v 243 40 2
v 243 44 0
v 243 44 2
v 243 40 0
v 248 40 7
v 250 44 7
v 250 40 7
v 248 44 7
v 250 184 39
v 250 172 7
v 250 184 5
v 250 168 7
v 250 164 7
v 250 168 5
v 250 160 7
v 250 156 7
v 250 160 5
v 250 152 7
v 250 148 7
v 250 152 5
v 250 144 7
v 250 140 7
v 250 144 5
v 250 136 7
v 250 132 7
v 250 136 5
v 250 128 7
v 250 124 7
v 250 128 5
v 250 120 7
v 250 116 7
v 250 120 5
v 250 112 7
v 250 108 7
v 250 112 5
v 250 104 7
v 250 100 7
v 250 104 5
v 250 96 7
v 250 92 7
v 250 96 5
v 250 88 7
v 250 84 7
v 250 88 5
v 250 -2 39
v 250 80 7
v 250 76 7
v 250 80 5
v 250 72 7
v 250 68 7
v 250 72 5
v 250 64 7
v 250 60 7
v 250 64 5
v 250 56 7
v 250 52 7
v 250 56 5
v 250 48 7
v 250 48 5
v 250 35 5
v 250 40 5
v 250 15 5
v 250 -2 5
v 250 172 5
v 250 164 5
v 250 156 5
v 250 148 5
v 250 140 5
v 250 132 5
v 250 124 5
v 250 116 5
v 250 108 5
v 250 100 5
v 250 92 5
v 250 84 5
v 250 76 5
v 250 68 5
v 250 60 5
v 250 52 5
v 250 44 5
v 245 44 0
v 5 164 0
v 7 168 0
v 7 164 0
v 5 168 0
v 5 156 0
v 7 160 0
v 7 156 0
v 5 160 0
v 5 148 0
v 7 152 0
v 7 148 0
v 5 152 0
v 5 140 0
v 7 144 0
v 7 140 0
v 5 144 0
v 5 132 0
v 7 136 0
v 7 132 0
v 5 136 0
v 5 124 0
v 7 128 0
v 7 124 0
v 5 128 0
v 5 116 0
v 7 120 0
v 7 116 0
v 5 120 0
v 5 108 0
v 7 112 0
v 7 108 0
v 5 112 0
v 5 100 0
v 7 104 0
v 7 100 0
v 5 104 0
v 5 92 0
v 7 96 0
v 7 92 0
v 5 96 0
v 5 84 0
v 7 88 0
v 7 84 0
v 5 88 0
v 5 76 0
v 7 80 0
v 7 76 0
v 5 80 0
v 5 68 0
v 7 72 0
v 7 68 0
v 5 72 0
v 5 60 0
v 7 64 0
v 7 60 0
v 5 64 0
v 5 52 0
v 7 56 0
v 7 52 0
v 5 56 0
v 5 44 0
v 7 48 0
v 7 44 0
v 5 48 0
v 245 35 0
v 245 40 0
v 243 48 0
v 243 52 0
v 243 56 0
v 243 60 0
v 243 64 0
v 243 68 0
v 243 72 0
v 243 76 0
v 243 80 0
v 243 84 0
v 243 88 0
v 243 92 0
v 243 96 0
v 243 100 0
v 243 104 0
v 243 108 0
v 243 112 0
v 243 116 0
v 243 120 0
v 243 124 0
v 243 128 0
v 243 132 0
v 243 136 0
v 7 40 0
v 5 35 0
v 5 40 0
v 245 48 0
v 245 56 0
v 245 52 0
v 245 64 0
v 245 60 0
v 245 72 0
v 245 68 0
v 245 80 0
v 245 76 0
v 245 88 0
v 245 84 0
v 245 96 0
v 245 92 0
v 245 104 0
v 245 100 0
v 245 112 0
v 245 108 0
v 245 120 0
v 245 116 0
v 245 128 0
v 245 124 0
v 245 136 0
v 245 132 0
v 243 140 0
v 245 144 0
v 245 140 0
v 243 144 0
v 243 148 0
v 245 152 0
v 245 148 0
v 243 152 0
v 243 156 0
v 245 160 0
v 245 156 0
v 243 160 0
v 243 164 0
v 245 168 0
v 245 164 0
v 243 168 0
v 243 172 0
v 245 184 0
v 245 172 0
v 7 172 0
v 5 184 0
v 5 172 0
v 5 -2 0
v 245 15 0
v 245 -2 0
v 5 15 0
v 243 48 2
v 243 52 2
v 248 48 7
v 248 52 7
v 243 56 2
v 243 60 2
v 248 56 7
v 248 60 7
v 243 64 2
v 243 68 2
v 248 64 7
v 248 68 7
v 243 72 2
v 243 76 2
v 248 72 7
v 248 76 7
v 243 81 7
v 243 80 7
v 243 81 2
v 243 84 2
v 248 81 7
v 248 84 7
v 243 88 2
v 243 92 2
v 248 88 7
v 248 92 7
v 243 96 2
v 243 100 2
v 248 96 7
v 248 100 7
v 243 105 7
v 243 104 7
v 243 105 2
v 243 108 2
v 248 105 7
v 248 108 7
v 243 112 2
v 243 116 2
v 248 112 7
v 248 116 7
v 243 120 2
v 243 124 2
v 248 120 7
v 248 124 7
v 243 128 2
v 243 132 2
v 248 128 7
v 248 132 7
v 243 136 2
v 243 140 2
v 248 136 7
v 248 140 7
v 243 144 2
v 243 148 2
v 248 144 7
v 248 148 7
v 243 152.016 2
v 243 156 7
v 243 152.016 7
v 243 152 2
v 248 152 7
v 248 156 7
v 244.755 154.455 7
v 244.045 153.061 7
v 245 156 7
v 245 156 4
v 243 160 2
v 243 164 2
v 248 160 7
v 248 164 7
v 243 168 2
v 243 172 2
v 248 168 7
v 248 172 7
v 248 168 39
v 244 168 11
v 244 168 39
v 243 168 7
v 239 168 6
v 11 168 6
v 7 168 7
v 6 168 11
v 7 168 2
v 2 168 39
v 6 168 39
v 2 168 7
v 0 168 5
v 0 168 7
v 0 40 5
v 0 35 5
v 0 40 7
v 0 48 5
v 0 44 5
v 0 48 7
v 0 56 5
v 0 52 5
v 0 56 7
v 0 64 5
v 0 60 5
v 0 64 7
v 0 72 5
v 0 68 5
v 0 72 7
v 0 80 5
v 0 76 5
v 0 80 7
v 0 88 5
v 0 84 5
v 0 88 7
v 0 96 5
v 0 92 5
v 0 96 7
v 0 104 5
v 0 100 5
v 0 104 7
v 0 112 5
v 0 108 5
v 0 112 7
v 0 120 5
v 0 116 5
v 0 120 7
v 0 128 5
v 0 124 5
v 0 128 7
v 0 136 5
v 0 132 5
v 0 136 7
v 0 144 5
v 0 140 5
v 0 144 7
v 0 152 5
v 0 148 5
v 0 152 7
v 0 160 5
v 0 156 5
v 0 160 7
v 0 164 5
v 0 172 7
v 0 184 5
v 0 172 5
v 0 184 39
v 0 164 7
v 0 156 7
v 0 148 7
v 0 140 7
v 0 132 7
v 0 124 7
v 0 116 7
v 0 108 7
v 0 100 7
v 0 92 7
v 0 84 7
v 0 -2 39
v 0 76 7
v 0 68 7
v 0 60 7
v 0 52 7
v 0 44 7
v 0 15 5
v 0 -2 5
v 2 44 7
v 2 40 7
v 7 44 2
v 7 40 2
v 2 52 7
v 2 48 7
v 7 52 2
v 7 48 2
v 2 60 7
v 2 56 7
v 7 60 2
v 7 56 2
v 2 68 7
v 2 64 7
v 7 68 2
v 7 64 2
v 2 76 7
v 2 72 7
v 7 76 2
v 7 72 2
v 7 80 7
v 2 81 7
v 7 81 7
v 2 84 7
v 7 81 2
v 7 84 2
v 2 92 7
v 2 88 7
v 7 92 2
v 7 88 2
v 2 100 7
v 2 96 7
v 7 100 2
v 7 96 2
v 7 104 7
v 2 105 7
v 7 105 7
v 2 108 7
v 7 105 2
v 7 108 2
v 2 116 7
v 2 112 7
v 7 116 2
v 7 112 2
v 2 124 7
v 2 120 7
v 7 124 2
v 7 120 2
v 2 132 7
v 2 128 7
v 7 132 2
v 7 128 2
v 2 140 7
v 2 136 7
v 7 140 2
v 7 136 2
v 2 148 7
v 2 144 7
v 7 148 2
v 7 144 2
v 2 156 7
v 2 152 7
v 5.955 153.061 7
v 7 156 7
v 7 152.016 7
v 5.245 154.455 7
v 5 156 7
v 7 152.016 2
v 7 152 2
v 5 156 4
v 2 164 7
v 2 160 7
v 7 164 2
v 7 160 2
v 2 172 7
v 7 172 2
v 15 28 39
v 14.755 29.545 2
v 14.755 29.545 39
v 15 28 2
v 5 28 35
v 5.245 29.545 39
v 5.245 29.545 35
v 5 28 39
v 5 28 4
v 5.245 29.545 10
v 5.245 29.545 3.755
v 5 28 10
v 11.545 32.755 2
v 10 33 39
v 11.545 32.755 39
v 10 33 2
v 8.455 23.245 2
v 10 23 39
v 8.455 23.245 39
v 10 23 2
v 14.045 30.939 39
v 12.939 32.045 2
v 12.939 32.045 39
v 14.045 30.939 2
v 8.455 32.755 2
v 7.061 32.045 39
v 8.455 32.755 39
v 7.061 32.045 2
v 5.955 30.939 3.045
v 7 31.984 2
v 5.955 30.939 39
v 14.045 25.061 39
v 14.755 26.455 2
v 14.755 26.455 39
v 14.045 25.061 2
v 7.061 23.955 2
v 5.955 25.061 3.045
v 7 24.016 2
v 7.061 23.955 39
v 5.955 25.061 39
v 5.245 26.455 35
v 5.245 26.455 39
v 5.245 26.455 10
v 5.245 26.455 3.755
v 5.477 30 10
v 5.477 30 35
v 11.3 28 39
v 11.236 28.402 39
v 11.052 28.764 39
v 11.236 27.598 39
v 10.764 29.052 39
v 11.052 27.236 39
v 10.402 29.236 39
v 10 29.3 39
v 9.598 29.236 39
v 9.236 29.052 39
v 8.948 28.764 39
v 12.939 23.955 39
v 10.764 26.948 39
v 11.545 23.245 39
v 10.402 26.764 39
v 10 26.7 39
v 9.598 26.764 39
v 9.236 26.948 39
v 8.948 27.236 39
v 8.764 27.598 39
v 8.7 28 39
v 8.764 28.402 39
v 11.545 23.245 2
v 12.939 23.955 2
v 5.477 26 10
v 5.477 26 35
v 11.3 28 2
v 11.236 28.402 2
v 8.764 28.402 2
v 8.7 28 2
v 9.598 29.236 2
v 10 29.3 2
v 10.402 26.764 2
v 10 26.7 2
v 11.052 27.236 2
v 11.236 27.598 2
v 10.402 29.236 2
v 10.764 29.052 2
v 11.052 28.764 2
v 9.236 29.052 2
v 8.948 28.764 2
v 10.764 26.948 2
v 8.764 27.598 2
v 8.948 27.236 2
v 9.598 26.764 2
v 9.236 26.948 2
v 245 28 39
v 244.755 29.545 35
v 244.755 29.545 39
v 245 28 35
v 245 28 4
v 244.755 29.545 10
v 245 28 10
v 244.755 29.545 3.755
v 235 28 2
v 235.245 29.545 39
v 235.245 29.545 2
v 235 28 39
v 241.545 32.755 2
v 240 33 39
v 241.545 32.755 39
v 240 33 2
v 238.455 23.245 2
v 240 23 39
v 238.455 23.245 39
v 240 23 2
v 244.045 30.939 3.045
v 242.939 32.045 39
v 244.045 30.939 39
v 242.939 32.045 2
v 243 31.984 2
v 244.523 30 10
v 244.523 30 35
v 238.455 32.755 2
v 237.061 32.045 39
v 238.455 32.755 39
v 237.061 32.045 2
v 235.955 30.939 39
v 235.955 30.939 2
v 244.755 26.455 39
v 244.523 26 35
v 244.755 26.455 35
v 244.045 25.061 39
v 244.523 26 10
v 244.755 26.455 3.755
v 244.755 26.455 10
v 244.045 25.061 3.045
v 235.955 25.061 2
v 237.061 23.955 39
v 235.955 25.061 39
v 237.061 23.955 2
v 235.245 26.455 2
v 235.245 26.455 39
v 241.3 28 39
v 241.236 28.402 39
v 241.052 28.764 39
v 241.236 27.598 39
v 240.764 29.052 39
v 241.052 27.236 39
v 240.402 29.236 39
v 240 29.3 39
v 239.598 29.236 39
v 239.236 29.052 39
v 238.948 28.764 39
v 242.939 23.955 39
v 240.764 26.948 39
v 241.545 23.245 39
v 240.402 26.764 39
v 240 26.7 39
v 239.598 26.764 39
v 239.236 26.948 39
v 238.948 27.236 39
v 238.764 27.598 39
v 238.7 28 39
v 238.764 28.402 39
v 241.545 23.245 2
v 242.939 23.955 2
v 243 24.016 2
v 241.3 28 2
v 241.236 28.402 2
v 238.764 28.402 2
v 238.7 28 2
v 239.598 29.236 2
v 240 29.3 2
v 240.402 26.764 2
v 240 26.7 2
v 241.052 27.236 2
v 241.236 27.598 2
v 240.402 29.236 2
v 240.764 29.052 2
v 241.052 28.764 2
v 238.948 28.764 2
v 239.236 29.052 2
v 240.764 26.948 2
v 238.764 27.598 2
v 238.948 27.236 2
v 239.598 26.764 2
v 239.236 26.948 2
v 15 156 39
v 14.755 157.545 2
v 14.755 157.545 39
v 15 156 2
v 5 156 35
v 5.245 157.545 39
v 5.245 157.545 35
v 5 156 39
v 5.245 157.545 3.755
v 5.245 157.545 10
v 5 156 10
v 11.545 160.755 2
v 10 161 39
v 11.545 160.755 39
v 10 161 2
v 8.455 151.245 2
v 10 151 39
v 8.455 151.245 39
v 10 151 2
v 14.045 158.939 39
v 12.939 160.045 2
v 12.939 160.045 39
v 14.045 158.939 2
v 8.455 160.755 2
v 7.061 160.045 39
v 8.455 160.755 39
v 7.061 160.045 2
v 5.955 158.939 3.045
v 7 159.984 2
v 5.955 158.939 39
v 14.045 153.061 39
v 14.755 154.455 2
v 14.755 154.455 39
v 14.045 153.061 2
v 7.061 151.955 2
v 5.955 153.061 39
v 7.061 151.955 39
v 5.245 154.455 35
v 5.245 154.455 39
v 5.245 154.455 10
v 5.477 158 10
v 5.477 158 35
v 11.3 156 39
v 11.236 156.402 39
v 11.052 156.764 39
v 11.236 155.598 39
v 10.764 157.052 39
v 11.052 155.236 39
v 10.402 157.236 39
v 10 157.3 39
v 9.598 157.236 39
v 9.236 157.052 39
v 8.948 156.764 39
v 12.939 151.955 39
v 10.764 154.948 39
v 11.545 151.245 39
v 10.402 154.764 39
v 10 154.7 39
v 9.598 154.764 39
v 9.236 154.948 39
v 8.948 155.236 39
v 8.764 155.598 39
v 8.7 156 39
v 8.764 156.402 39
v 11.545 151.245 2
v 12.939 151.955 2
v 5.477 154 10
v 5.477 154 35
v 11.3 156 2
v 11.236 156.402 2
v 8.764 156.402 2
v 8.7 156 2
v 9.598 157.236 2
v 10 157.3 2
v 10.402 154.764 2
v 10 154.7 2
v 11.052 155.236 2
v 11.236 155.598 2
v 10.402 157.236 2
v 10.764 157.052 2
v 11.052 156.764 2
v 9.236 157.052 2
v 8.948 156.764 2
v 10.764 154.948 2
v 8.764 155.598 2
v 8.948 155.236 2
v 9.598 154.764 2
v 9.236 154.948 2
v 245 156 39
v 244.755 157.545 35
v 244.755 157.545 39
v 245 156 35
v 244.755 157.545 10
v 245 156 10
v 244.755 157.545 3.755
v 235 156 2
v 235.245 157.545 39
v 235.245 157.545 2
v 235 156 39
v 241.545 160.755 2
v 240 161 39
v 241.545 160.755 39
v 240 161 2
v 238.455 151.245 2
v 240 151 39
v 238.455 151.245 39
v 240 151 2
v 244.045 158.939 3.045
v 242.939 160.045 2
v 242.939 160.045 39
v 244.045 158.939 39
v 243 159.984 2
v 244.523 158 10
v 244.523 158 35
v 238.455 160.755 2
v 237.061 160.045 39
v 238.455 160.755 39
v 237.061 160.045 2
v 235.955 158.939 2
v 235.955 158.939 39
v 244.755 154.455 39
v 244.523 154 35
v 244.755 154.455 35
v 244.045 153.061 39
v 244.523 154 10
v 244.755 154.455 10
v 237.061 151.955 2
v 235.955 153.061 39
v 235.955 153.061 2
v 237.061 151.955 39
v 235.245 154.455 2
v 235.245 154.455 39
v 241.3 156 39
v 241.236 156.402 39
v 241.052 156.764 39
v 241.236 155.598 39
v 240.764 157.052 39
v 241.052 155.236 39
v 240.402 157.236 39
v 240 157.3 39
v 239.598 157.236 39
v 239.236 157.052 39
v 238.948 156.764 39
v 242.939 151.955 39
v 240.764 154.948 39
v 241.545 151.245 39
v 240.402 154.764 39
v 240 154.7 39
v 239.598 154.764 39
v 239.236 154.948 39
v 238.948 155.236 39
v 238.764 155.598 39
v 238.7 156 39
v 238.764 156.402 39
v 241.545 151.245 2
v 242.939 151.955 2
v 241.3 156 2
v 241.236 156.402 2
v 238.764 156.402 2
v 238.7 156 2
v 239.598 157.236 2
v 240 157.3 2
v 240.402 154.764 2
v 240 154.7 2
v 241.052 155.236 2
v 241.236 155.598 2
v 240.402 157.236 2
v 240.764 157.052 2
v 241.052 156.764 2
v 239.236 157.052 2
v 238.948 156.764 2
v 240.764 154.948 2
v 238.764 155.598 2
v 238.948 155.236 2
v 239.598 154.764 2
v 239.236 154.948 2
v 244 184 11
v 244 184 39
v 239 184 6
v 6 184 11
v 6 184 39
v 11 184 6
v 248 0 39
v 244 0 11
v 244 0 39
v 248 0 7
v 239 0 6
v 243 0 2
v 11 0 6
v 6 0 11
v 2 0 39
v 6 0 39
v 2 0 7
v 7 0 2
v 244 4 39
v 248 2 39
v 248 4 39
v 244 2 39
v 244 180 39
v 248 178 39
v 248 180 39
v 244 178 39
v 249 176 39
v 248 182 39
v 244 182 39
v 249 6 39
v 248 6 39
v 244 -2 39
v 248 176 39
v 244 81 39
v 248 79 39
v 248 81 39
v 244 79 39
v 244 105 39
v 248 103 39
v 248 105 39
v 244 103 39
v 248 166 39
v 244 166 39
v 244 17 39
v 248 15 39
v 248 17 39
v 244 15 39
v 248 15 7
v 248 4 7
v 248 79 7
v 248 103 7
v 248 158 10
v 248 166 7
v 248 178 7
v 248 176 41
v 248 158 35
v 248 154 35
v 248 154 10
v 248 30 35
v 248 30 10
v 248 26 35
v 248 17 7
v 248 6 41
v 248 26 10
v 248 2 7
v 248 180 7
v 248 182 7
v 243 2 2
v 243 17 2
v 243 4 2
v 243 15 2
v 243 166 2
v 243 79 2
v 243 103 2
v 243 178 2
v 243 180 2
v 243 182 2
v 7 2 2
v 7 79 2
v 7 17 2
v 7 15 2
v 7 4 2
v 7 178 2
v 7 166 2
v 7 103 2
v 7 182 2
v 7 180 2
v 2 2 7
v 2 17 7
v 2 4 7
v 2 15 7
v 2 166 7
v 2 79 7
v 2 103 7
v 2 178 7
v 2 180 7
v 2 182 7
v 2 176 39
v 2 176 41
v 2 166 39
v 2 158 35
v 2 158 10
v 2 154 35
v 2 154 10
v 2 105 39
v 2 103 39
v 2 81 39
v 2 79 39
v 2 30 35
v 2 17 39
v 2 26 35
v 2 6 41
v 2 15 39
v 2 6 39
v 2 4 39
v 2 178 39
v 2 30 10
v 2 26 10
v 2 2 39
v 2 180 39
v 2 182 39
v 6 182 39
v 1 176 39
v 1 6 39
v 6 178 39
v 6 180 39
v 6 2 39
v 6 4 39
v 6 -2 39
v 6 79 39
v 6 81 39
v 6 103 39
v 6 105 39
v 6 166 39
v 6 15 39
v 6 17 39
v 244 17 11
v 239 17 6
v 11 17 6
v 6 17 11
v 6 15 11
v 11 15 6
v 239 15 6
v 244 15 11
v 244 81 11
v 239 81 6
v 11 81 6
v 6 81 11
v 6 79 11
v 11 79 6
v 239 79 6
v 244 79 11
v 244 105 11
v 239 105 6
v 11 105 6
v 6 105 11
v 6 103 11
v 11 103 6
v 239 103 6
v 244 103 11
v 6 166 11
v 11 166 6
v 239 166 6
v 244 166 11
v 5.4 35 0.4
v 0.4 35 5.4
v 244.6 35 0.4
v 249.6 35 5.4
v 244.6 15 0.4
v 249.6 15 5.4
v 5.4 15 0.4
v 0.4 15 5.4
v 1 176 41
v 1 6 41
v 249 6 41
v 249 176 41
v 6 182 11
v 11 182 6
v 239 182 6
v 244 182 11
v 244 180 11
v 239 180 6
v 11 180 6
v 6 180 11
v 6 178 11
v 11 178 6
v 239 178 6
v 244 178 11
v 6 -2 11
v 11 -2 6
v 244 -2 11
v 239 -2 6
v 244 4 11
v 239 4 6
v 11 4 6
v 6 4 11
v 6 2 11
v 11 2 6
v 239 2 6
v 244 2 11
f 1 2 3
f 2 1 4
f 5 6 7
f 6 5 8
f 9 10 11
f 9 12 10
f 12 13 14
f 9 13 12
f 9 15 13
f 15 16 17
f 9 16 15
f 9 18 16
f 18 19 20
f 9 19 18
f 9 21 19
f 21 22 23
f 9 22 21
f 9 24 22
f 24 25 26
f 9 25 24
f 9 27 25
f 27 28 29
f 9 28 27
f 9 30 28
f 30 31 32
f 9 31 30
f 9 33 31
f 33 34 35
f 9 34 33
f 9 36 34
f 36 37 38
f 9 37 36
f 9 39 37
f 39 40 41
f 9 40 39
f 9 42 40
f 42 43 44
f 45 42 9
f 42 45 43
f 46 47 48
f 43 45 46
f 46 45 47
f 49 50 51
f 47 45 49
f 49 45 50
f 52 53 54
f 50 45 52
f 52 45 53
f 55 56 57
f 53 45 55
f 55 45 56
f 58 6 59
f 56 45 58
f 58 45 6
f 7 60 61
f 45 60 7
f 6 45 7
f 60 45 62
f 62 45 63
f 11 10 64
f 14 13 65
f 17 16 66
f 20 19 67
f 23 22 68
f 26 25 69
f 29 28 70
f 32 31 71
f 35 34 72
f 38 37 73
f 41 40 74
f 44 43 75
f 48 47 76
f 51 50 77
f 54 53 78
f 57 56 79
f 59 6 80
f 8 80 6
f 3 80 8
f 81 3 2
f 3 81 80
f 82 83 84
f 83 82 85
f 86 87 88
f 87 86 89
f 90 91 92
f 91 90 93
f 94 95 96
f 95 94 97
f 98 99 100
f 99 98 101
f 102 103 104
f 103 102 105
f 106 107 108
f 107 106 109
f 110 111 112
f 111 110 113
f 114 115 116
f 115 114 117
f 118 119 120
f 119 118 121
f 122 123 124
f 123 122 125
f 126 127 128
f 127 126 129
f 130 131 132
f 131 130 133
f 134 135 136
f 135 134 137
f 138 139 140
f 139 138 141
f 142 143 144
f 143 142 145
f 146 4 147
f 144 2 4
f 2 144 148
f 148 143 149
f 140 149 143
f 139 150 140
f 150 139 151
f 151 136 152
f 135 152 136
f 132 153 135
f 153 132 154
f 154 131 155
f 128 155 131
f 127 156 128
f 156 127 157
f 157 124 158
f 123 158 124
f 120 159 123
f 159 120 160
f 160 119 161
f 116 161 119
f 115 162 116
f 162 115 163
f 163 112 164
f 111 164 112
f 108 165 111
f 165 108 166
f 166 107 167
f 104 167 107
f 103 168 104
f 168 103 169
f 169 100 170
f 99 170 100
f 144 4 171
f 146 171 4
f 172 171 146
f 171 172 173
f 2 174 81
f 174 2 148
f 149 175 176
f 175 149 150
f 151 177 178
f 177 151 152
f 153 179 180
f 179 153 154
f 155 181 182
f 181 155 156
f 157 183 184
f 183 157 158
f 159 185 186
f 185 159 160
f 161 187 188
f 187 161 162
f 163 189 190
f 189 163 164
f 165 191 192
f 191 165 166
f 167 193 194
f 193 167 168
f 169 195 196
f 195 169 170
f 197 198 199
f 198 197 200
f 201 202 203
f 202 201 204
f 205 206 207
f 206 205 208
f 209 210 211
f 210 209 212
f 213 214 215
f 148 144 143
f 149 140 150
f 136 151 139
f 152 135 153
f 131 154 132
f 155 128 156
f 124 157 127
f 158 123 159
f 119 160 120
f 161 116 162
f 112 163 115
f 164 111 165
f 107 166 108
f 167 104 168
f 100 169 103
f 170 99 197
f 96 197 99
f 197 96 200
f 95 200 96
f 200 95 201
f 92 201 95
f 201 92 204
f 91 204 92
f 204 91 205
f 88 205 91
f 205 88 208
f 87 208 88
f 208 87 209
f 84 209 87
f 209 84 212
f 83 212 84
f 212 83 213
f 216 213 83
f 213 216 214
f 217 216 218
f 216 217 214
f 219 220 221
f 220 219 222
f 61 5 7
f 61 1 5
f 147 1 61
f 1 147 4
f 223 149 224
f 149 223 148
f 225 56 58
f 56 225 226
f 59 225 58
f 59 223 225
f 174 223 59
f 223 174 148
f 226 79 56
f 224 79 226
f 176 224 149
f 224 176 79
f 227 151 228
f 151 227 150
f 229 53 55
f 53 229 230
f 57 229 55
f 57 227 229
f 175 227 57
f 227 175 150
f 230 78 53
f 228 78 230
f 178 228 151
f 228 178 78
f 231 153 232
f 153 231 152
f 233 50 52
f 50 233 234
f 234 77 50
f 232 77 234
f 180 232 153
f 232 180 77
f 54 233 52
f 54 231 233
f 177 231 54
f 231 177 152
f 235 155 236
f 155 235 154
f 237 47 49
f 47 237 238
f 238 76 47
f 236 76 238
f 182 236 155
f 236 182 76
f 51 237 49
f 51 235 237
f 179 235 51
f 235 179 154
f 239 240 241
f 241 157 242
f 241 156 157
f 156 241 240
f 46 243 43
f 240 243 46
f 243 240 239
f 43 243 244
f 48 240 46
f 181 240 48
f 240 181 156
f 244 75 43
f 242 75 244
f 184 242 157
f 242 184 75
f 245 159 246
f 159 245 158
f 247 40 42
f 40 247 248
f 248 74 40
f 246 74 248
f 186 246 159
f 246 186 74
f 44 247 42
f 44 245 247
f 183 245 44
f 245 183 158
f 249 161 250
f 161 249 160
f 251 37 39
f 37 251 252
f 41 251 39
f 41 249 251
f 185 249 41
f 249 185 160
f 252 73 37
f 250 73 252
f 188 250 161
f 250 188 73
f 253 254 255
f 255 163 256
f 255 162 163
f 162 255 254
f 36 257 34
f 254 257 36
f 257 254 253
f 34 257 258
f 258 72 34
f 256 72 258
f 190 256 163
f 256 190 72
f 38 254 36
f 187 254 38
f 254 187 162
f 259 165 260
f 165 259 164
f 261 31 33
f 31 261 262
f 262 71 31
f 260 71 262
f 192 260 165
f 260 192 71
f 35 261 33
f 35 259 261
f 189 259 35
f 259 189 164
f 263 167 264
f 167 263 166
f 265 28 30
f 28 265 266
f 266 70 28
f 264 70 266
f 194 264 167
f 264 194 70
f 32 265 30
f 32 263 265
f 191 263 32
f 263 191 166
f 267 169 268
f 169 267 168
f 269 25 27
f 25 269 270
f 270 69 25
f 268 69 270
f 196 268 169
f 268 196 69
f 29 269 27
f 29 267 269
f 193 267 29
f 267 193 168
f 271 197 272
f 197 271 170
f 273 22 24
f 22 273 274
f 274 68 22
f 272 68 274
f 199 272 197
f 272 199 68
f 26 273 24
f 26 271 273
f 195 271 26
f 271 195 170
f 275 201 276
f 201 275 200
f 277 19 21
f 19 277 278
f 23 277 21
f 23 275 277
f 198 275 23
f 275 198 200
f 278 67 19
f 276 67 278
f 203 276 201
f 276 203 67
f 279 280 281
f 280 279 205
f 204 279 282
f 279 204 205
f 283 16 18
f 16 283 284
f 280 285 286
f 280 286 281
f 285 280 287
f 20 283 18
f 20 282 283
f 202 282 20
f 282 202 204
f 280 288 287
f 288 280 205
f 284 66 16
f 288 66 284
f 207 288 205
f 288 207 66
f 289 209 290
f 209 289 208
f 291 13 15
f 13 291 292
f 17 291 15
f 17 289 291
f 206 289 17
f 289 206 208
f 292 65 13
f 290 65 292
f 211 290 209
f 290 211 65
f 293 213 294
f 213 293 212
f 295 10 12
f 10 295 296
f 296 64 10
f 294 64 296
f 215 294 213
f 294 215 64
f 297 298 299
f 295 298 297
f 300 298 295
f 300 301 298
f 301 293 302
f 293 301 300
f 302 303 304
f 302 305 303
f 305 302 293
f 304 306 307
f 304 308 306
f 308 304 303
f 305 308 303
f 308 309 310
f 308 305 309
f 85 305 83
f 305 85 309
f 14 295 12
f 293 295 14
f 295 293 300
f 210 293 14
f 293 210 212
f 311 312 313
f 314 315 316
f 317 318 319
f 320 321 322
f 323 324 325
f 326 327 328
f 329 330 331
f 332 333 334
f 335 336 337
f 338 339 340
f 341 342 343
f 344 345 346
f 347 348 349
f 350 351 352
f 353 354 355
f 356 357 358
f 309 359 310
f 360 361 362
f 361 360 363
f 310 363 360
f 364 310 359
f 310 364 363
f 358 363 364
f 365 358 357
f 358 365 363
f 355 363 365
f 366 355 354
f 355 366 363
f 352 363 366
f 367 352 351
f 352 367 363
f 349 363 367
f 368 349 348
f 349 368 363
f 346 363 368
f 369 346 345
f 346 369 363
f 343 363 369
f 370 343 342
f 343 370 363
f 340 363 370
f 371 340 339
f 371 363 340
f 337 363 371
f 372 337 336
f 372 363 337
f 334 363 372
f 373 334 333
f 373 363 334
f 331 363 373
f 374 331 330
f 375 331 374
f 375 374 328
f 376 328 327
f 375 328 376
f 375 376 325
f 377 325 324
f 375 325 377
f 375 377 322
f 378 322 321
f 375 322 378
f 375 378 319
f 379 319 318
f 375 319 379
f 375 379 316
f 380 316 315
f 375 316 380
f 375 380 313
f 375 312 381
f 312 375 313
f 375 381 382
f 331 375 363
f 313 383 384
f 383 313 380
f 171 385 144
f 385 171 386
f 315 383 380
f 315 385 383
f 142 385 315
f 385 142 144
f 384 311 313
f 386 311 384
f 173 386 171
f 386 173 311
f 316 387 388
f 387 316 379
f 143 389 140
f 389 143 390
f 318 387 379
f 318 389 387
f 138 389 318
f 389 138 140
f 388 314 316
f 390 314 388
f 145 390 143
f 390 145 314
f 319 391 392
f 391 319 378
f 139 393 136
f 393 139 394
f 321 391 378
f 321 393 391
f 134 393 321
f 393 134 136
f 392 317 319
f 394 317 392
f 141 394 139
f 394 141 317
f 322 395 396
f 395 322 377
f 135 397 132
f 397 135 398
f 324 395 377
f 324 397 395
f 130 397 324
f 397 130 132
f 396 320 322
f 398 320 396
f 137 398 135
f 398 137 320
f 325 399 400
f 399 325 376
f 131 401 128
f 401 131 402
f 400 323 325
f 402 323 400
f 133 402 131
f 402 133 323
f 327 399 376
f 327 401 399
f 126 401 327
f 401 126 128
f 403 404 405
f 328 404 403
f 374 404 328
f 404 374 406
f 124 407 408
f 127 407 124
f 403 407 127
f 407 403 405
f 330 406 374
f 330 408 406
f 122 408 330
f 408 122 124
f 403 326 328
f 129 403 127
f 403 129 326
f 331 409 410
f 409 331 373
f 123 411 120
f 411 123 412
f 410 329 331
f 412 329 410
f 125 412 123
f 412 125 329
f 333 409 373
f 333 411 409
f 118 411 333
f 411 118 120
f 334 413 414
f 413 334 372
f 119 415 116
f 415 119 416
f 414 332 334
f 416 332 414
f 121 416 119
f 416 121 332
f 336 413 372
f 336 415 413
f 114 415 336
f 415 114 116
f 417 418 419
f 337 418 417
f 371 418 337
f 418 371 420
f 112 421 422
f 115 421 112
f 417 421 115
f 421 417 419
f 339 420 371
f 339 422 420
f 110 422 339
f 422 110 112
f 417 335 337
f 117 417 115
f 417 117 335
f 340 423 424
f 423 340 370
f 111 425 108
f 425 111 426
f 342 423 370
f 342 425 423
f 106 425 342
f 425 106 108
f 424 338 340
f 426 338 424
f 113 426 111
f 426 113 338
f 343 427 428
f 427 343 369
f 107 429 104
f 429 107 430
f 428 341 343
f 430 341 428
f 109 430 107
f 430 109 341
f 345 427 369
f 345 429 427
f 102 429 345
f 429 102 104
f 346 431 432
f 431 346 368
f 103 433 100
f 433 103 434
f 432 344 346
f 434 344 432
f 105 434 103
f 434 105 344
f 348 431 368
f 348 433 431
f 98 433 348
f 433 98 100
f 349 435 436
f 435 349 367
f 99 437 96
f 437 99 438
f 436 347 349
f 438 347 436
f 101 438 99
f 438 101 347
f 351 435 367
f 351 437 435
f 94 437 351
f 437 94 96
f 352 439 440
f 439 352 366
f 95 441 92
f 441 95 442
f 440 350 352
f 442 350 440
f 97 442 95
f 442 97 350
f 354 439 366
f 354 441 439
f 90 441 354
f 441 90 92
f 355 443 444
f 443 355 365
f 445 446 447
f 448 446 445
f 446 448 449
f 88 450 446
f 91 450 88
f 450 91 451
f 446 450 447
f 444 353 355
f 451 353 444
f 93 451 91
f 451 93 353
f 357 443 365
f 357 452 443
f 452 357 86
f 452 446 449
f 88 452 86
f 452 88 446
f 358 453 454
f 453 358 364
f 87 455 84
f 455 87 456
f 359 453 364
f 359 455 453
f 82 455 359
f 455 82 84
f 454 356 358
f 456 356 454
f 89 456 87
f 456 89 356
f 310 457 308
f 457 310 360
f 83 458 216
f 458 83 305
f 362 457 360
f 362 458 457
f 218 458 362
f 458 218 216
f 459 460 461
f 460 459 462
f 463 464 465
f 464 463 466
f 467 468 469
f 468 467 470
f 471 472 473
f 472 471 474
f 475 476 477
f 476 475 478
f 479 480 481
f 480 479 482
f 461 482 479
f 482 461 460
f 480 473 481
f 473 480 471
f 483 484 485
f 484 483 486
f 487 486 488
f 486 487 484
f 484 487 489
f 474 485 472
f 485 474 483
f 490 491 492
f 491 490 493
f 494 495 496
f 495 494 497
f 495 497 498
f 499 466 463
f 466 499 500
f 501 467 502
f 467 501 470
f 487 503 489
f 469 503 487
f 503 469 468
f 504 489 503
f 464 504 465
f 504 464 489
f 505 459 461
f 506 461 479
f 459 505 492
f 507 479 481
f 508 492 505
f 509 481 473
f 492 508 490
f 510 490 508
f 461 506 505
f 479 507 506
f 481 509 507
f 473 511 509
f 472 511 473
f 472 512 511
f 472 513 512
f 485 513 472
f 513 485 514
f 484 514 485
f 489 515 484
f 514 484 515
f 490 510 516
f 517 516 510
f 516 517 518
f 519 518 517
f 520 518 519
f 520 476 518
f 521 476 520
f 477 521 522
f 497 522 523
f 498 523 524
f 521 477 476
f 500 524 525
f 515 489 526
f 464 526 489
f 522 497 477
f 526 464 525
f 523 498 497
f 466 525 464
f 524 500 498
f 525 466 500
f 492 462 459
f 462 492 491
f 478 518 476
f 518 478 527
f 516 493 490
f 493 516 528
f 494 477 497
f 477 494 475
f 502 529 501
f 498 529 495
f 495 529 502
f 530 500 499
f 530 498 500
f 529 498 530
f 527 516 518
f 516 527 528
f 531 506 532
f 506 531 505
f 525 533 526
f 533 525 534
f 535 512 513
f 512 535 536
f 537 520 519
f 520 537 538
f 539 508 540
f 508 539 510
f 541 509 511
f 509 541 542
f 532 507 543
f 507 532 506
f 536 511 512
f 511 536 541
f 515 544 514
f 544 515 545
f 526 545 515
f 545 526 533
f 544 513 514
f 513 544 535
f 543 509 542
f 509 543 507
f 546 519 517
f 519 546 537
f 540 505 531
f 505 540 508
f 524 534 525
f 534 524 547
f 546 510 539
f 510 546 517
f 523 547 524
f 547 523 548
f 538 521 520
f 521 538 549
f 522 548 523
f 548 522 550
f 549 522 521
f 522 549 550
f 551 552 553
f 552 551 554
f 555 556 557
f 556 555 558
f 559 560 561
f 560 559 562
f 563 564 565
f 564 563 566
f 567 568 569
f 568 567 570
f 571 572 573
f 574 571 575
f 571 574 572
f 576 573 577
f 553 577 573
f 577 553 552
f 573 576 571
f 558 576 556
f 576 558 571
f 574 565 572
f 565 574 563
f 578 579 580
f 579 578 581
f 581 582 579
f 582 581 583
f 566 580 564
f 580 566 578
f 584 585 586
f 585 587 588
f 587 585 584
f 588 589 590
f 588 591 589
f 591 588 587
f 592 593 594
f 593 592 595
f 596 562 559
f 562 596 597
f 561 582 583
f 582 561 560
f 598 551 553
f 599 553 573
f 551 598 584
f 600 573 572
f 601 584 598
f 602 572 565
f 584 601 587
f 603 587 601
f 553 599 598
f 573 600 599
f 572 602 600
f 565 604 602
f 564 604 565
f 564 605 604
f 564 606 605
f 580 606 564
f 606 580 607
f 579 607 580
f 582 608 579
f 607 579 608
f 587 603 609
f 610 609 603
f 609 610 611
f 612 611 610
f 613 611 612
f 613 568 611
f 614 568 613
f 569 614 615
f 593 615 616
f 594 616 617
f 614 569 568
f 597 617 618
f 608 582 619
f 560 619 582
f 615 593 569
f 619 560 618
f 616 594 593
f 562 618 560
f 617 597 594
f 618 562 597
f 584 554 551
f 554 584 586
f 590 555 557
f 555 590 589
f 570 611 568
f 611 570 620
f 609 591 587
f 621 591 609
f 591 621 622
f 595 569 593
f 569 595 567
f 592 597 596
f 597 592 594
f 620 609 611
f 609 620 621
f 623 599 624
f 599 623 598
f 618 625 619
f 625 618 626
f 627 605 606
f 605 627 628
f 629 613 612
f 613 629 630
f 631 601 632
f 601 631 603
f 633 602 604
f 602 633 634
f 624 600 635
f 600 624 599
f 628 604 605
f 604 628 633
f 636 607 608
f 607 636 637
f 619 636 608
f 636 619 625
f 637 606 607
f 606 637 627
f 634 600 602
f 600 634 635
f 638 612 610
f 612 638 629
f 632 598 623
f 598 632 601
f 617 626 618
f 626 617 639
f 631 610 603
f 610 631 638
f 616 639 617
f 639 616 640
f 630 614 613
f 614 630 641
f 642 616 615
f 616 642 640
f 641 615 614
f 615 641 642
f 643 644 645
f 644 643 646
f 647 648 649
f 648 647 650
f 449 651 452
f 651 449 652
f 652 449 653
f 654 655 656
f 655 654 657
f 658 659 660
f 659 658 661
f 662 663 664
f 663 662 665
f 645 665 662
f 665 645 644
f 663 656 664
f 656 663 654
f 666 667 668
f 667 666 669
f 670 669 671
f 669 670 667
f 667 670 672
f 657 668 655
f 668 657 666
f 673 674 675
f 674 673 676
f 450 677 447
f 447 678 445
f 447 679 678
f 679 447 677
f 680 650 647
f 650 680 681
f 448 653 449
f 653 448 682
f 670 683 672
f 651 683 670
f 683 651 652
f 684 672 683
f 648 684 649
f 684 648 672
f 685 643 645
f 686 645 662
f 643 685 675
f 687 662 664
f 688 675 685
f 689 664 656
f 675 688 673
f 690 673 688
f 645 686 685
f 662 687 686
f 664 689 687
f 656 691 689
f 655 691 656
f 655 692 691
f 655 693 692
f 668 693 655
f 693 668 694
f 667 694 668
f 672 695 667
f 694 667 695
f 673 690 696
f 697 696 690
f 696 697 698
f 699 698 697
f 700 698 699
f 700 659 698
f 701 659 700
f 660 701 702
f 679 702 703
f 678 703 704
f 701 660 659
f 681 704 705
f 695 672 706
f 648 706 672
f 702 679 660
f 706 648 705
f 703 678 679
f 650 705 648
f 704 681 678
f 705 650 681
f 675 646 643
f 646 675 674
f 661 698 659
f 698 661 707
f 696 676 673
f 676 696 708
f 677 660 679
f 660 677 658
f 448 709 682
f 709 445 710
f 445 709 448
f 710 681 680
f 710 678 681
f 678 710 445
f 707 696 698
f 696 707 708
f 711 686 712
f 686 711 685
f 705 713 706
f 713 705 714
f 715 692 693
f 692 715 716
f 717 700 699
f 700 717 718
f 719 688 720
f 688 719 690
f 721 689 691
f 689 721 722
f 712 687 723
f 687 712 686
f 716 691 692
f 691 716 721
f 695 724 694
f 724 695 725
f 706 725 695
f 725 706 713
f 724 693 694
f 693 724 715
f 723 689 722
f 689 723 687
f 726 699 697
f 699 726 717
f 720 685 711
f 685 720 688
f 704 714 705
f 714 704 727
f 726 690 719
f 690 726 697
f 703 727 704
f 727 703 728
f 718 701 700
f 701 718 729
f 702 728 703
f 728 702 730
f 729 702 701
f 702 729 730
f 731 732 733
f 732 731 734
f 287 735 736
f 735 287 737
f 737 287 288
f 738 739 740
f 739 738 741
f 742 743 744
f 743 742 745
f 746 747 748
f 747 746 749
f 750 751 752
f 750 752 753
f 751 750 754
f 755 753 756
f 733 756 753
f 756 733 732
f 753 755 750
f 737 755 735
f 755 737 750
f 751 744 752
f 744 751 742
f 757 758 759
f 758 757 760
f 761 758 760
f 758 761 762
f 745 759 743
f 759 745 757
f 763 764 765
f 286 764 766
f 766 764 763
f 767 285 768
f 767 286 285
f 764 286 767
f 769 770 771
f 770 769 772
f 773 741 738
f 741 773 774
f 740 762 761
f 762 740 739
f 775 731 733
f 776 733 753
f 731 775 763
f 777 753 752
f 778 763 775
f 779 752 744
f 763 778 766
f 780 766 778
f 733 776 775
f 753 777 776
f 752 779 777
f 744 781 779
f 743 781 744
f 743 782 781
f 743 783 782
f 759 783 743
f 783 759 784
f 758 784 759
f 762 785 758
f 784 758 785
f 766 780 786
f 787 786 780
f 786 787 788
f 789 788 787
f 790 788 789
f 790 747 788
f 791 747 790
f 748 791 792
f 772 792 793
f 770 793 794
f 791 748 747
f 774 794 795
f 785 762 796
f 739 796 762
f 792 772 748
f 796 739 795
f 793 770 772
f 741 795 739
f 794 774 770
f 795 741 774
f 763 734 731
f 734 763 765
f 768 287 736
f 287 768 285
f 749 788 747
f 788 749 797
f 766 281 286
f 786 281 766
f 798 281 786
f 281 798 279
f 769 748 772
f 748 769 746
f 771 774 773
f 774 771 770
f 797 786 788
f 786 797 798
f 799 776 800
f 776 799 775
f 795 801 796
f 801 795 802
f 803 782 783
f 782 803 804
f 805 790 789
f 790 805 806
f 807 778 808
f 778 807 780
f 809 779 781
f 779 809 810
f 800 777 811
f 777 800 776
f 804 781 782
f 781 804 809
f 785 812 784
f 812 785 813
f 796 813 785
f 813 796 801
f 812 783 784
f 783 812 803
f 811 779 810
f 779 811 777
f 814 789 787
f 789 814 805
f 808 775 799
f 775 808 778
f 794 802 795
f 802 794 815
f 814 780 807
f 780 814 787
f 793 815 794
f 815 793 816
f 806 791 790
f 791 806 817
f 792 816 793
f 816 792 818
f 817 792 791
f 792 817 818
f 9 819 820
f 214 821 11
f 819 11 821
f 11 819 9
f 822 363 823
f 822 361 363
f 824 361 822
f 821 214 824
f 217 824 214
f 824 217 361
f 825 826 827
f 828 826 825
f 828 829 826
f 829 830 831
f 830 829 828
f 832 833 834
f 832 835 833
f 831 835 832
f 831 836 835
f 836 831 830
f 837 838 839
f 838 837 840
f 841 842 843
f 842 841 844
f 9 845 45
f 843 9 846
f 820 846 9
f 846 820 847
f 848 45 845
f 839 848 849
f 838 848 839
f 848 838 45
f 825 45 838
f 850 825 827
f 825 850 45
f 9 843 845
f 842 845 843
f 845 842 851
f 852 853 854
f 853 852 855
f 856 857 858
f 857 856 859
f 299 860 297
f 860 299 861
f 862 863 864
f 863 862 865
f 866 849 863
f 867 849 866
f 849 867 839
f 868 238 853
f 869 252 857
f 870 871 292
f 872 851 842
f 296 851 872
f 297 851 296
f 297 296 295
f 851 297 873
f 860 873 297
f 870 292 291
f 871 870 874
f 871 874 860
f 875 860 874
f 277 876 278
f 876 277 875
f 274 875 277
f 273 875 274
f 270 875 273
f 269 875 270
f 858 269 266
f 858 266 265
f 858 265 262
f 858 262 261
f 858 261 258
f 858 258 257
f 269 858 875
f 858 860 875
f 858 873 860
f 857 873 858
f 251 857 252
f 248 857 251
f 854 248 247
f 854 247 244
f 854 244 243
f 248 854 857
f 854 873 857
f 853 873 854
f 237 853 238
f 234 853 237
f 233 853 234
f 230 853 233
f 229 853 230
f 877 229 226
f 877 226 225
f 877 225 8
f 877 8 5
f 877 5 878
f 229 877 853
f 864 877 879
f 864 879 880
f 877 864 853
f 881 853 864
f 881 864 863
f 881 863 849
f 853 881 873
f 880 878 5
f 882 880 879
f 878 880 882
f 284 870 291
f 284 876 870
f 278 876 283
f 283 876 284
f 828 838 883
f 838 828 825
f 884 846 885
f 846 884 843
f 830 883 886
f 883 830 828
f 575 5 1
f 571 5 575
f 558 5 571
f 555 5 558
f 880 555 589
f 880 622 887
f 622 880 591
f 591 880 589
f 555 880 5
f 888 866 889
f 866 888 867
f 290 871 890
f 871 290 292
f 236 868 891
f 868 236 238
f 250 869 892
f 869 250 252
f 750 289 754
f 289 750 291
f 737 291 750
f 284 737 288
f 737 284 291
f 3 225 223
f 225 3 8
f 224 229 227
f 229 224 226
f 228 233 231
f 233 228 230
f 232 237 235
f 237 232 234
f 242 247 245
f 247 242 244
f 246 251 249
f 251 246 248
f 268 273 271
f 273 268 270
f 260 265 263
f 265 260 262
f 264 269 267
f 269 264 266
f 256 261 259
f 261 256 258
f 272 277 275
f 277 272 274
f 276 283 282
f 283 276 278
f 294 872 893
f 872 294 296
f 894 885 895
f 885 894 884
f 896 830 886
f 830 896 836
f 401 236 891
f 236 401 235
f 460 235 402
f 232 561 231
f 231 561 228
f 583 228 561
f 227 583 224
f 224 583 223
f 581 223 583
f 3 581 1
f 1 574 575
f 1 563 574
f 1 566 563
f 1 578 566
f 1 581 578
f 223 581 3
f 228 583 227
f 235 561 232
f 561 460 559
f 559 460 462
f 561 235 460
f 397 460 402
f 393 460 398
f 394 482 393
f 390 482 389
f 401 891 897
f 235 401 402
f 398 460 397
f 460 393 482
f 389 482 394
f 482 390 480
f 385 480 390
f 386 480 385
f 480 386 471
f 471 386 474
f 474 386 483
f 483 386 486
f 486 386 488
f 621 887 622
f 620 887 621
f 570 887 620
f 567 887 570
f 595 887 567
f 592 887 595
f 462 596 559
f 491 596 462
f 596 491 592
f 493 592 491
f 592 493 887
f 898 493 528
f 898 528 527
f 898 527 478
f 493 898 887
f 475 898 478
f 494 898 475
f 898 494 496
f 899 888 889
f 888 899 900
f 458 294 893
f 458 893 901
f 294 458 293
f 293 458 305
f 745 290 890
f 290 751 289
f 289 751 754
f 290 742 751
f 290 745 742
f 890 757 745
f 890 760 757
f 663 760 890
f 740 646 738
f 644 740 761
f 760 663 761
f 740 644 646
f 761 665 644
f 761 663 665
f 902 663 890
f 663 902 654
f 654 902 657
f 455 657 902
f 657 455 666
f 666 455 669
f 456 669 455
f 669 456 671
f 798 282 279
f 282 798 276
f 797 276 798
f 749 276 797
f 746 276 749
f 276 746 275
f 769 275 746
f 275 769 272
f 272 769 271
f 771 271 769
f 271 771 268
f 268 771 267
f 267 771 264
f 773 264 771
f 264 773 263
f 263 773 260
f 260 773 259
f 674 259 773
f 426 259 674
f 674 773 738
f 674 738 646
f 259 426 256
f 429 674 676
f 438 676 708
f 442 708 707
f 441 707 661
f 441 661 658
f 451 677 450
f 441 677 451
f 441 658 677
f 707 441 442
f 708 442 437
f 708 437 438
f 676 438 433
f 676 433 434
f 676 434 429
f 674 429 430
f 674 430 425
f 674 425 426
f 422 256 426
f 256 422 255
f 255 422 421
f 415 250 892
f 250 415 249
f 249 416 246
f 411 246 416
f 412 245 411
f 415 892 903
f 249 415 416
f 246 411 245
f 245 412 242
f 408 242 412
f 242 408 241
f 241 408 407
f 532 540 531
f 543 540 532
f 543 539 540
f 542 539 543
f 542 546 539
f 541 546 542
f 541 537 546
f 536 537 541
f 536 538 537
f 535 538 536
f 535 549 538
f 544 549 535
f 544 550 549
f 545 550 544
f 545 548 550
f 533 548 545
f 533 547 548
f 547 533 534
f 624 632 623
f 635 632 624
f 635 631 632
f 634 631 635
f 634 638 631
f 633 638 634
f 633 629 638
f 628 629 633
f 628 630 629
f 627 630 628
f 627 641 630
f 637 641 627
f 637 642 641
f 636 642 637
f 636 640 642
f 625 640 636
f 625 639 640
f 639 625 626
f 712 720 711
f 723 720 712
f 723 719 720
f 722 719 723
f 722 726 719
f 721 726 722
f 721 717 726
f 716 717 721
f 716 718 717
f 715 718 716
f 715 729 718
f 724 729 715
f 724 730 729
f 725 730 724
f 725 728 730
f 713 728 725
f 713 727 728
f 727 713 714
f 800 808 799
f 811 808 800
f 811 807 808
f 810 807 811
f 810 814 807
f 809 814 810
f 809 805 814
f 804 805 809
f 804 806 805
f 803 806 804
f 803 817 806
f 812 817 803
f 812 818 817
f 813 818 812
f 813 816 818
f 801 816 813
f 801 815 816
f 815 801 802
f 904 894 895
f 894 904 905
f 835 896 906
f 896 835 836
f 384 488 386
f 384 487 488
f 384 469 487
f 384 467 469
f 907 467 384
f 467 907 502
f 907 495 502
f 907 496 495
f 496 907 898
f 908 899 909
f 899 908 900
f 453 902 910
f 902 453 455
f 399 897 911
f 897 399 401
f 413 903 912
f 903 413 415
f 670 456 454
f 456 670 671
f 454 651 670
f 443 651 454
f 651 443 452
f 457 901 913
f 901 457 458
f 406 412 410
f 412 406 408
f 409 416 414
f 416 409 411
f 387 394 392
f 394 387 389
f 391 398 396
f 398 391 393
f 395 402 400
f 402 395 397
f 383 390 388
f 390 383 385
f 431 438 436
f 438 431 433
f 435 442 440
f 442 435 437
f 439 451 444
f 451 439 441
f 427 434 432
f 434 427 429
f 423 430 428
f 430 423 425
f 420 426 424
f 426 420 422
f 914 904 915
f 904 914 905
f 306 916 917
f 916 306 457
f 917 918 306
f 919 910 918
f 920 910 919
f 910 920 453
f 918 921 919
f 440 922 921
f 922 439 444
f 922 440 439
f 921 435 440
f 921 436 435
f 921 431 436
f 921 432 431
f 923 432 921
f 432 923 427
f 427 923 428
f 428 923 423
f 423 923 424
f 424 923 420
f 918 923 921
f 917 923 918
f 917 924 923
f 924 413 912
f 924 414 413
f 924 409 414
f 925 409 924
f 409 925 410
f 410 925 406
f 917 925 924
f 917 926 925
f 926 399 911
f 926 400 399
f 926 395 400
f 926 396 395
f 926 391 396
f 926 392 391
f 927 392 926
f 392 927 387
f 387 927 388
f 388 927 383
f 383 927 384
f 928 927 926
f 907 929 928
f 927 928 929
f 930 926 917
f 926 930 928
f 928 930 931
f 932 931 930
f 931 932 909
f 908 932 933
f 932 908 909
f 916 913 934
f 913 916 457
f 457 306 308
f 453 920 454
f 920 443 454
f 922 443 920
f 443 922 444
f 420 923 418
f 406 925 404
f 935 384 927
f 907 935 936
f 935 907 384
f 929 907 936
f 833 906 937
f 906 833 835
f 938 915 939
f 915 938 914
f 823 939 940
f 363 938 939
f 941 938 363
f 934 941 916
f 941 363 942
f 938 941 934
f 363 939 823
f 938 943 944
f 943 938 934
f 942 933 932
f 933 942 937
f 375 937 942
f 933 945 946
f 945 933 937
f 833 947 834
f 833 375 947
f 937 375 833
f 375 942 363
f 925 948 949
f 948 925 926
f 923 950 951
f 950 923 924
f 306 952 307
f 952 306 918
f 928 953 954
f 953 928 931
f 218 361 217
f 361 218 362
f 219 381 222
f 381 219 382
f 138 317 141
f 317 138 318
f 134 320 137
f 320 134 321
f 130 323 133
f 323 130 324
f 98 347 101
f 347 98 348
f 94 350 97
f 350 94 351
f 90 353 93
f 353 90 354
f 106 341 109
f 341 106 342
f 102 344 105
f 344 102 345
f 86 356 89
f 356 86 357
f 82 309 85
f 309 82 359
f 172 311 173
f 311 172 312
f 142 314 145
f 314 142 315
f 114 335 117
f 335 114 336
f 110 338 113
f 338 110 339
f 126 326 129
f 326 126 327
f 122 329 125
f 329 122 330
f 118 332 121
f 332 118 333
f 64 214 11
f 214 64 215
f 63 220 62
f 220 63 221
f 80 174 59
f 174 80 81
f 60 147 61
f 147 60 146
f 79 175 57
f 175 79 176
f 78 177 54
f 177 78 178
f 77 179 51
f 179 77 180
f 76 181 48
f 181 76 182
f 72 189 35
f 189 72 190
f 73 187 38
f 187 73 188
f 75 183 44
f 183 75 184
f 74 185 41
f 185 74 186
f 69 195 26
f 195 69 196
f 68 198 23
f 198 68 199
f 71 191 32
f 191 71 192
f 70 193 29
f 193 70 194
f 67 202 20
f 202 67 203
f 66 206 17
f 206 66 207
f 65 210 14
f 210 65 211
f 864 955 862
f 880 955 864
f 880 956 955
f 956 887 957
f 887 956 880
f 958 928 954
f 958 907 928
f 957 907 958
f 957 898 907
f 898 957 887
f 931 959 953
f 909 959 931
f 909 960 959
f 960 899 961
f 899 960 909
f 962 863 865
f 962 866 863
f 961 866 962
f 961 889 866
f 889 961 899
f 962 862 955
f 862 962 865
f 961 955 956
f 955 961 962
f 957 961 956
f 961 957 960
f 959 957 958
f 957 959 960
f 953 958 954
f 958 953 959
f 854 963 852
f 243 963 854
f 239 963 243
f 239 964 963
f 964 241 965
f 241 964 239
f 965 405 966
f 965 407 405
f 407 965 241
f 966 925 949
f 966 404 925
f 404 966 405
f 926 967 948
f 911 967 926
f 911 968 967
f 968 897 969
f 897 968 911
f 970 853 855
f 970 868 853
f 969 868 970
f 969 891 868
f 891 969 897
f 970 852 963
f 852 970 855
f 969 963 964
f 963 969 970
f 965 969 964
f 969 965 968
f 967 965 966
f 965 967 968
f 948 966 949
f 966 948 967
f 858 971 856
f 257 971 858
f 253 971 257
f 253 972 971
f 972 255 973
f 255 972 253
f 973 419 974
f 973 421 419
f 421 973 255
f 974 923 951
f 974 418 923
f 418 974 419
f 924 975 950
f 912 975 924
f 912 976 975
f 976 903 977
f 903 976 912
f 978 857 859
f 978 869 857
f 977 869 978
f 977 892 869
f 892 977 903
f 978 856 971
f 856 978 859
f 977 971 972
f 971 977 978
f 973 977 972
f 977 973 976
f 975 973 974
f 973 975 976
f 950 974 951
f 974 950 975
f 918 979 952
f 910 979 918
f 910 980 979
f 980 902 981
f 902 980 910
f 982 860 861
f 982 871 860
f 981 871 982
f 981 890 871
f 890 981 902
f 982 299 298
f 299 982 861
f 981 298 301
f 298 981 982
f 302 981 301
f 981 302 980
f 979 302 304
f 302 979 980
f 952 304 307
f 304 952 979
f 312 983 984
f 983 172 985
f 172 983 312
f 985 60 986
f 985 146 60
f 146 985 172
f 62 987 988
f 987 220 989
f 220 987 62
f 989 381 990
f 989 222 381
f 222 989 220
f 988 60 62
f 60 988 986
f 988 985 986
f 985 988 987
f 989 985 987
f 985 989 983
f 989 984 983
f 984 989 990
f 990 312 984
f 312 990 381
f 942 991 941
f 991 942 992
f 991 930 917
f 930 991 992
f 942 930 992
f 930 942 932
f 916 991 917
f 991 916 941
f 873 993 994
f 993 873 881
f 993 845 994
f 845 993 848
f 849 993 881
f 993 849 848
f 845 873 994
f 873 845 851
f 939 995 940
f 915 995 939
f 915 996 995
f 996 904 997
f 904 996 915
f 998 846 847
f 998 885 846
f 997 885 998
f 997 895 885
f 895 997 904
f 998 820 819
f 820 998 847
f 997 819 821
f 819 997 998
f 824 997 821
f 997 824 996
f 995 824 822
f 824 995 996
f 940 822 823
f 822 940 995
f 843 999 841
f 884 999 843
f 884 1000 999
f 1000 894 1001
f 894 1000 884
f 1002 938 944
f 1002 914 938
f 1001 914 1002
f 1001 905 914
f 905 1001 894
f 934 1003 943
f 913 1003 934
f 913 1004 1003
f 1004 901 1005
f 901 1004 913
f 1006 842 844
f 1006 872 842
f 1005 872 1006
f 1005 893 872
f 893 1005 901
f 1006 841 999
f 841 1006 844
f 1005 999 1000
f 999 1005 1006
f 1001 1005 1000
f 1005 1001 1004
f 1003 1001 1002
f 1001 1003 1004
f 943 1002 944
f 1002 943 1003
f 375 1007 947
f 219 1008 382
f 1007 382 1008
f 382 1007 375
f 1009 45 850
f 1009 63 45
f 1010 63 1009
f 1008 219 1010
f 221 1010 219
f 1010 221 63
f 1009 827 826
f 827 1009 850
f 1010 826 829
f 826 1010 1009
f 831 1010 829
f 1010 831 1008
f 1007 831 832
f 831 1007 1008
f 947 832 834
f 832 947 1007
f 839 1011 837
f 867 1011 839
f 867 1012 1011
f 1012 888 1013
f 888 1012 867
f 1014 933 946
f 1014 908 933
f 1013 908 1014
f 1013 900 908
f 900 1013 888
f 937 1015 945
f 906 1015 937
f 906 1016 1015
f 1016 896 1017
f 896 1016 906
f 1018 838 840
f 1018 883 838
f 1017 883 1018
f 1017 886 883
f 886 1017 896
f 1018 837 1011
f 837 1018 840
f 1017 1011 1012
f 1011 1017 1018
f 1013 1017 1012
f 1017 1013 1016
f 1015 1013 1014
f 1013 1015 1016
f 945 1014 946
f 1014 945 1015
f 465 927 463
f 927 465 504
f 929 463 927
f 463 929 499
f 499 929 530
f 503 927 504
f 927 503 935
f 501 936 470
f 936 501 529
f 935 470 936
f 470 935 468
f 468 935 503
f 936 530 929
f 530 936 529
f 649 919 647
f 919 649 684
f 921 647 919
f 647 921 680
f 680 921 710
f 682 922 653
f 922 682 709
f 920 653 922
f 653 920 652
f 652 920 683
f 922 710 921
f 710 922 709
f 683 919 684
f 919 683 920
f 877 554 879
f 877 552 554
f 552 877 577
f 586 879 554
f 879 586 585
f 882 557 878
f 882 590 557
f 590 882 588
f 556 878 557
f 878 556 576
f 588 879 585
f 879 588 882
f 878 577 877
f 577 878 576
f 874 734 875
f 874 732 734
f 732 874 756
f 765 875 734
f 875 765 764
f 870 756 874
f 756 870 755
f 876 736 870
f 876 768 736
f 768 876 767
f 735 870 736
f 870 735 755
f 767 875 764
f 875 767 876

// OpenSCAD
$fn = 20;

thick = 2;
xmax = 250;
ymax = 180+thick;
zmax = 39;

edge=5;

//xmt = xmax + 2*thick;
//ymt = ymax + 2*thick;    

    
difference() {
    shell_top();

    //holes for screws pcb
    /*
    translate([20, 35,0])
        cylinder(4, 3.5, 3.5);
    translate([xmax-20,35,0])
        cylinder(4, 3.5, 3.5);
    translate([21.5,35+118,0])
        cylinder(4, 3.5, 3.5);
    translate([xmax-21.5,35+118,0])
        cylinder(4, 3.5, 3.5);
    */
    
    
    //bumper
    /*
    translate([25, 20, 0])
        cylinder(1, 1, 1);
    translate([xmax-25, 20,0])
        cylinder(1, 1, 1);
    translate([25, ymax-15, 0])
        cylinder(1, 1, 1);
    translate([xmax-25, ymax-15, 0])
        cylinder(1, 1, 1);
    */    
     //text("Sally-2");
    
}

module atarilogo() {
    translate([0,35,0])
        base_shape_a();
}

module ataritext() {
    linear_extrude(0.4)
        mirror([1,0,0])
        text("ATARI ", 16, "SF Atarian              System:style=Regular");

    translate([-45, 0, 0])
    linear_extrude(0.4)
        mirror([1,0,0])
    text("SALLY-2 ", 12, "SF Atarian System:style=Regular");
}

module base_shape_a() {
        rotate([90,0,0]) 
            linear_extrude(20)
                base_shape_2d_a(0.4);
}

module base_shape_2d_a(th) {
    polygon([/* [0, zmax], */ [0, edge], [edge,0], [xmax-edge, 0], [xmax, edge], /*[xmax, zmax],[xmax-th,zmax],*/ [xmax-th, edge+th], [xmax-edge-th, th],[edge+th, th], [th, edge+th]/*,[th, zmax]*/]);
}




module shell_top() {
   
//    atarilogo();
    
    difference(){
        base_shape();
        cubes_left();    
        cubes_right();
        atarilogo();
        
        //holes for screws case
        /*
        translate([edge+5,28,0])
            cylinder(4, 3.5, 3.5);
        translate([xmax-edge-5,28,0])
            cylinder(4, 3.5, 3.5);
        translate([edge+5,ymax-26,0])
            cylinder(4, 3.5, 3.5);
        translate([xmax-edge-5,ymax-26,0])
            cylinder(4, 3.5, 3.5);
        */
        


    }

    //clips left right
    translate([thick/2,3*thick,zmax-1])
        cube([thick/2,ymax-6*thick, 3]);
    translate([xmax-thick,3*thick,zmax-1])
        cube([thick/2,ymax-6*thick, 3]);


    translate([0, ymax+thick])
        base_shape_holder();
    translate([0, ymax-thick])
        base_shape_holder();
    translate([0, 0])
        base_shape_holder();
    translate([0, 0+2*thick])
        base_shape_holder();    


    
    translate([0, 26, 10])
        cube([8,4,25]);
    translate([0, ymax-28, 10])
        cube([8,4,25]);
    translate([xmax-edge-2*thick+1, 26, 10])
        cube([8,4,25]);
    translate([xmax-edge-2*thick+1, ymax-28, 10])
        cube([8,4,25]);
    
    //feet, set PCB on top
    /*
    translate([20,35,0])
        foot(3, 22);
    translate([xmax-20,35,0])
        foot(3, 22);
        
    translate([21.5,35+118,0])
        foot(3, 22);
    translate([xmax-21.5,35+118,0])
        foot(3, 22);
    */
}




module base_shape() {
    translate([0, ymax+thick, 0])
        rotate([90,0,0]) 
            linear_extrude(ymax+thick)
                base_shape_2d(thick);

    //screws holding case together
    translate([edge+5,28,0])
        screw(2.5);
    translate([xmax-edge-5,28,0])
        screw(2.5);
    translate([edge+5,ymax-26,0])
        screw(2.5);
    translate([xmax-edge-5,ymax-26,0])
        screw(2.5);
    
    //reinforcement front
    translate([0, 17 ,0])
        base_shape_holder();    
    
    //reinforcement in the middle
    translate([0, ymax/2 - 10])
        base_shape_holder();    
    translate([0, ymax/2 + 14])
        base_shape_holder();    

    //reinforcement back
    translate([0, ymax-14 ,0])
        base_shape_holder();    

}

module base_shape_holder() {
    
    rotate([90,0,0])
    linear_extrude(thick)
        base_shape_2d(3*thick);

}

module base_shape_2d(th) {
    polygon([[0, zmax], [0, edge], [edge,0], [xmax-edge, 0], [xmax, edge], [xmax, zmax],[xmax-th,zmax], [xmax-th, edge+th], [xmax-edge-th, th],[edge+th, th], [th, edge+th],[th, zmax]]);
}


module cubes_left() {
    for(i = [40:8:ymax-14])
      translate([0, i, 0])
      cube([edge+thick, 4, edge+thick]);
}

module cubes_right() {
    for(i = [40:8:ymax-14])
      translate([xmax-edge-thick, i, 0])
      cube([edge+thick, 4, edge+thick]);
}
    
module screw(r) {    
    difference() {
        cylinder(zmax,r*2,r*2);
        translate([0,0,-1]);
            cylinder(zmax+2,r/2+0.05,r/2+0.05);
//        cylinder(5,6,6);
    }
}

module foot(r, h) {    
    difference() {
        cylinder(h,r*2,r*1.3);
            cylinder(h,r/2+0.1,r/2+0.1);
//        cylinder(5,6,6);
    }
}
